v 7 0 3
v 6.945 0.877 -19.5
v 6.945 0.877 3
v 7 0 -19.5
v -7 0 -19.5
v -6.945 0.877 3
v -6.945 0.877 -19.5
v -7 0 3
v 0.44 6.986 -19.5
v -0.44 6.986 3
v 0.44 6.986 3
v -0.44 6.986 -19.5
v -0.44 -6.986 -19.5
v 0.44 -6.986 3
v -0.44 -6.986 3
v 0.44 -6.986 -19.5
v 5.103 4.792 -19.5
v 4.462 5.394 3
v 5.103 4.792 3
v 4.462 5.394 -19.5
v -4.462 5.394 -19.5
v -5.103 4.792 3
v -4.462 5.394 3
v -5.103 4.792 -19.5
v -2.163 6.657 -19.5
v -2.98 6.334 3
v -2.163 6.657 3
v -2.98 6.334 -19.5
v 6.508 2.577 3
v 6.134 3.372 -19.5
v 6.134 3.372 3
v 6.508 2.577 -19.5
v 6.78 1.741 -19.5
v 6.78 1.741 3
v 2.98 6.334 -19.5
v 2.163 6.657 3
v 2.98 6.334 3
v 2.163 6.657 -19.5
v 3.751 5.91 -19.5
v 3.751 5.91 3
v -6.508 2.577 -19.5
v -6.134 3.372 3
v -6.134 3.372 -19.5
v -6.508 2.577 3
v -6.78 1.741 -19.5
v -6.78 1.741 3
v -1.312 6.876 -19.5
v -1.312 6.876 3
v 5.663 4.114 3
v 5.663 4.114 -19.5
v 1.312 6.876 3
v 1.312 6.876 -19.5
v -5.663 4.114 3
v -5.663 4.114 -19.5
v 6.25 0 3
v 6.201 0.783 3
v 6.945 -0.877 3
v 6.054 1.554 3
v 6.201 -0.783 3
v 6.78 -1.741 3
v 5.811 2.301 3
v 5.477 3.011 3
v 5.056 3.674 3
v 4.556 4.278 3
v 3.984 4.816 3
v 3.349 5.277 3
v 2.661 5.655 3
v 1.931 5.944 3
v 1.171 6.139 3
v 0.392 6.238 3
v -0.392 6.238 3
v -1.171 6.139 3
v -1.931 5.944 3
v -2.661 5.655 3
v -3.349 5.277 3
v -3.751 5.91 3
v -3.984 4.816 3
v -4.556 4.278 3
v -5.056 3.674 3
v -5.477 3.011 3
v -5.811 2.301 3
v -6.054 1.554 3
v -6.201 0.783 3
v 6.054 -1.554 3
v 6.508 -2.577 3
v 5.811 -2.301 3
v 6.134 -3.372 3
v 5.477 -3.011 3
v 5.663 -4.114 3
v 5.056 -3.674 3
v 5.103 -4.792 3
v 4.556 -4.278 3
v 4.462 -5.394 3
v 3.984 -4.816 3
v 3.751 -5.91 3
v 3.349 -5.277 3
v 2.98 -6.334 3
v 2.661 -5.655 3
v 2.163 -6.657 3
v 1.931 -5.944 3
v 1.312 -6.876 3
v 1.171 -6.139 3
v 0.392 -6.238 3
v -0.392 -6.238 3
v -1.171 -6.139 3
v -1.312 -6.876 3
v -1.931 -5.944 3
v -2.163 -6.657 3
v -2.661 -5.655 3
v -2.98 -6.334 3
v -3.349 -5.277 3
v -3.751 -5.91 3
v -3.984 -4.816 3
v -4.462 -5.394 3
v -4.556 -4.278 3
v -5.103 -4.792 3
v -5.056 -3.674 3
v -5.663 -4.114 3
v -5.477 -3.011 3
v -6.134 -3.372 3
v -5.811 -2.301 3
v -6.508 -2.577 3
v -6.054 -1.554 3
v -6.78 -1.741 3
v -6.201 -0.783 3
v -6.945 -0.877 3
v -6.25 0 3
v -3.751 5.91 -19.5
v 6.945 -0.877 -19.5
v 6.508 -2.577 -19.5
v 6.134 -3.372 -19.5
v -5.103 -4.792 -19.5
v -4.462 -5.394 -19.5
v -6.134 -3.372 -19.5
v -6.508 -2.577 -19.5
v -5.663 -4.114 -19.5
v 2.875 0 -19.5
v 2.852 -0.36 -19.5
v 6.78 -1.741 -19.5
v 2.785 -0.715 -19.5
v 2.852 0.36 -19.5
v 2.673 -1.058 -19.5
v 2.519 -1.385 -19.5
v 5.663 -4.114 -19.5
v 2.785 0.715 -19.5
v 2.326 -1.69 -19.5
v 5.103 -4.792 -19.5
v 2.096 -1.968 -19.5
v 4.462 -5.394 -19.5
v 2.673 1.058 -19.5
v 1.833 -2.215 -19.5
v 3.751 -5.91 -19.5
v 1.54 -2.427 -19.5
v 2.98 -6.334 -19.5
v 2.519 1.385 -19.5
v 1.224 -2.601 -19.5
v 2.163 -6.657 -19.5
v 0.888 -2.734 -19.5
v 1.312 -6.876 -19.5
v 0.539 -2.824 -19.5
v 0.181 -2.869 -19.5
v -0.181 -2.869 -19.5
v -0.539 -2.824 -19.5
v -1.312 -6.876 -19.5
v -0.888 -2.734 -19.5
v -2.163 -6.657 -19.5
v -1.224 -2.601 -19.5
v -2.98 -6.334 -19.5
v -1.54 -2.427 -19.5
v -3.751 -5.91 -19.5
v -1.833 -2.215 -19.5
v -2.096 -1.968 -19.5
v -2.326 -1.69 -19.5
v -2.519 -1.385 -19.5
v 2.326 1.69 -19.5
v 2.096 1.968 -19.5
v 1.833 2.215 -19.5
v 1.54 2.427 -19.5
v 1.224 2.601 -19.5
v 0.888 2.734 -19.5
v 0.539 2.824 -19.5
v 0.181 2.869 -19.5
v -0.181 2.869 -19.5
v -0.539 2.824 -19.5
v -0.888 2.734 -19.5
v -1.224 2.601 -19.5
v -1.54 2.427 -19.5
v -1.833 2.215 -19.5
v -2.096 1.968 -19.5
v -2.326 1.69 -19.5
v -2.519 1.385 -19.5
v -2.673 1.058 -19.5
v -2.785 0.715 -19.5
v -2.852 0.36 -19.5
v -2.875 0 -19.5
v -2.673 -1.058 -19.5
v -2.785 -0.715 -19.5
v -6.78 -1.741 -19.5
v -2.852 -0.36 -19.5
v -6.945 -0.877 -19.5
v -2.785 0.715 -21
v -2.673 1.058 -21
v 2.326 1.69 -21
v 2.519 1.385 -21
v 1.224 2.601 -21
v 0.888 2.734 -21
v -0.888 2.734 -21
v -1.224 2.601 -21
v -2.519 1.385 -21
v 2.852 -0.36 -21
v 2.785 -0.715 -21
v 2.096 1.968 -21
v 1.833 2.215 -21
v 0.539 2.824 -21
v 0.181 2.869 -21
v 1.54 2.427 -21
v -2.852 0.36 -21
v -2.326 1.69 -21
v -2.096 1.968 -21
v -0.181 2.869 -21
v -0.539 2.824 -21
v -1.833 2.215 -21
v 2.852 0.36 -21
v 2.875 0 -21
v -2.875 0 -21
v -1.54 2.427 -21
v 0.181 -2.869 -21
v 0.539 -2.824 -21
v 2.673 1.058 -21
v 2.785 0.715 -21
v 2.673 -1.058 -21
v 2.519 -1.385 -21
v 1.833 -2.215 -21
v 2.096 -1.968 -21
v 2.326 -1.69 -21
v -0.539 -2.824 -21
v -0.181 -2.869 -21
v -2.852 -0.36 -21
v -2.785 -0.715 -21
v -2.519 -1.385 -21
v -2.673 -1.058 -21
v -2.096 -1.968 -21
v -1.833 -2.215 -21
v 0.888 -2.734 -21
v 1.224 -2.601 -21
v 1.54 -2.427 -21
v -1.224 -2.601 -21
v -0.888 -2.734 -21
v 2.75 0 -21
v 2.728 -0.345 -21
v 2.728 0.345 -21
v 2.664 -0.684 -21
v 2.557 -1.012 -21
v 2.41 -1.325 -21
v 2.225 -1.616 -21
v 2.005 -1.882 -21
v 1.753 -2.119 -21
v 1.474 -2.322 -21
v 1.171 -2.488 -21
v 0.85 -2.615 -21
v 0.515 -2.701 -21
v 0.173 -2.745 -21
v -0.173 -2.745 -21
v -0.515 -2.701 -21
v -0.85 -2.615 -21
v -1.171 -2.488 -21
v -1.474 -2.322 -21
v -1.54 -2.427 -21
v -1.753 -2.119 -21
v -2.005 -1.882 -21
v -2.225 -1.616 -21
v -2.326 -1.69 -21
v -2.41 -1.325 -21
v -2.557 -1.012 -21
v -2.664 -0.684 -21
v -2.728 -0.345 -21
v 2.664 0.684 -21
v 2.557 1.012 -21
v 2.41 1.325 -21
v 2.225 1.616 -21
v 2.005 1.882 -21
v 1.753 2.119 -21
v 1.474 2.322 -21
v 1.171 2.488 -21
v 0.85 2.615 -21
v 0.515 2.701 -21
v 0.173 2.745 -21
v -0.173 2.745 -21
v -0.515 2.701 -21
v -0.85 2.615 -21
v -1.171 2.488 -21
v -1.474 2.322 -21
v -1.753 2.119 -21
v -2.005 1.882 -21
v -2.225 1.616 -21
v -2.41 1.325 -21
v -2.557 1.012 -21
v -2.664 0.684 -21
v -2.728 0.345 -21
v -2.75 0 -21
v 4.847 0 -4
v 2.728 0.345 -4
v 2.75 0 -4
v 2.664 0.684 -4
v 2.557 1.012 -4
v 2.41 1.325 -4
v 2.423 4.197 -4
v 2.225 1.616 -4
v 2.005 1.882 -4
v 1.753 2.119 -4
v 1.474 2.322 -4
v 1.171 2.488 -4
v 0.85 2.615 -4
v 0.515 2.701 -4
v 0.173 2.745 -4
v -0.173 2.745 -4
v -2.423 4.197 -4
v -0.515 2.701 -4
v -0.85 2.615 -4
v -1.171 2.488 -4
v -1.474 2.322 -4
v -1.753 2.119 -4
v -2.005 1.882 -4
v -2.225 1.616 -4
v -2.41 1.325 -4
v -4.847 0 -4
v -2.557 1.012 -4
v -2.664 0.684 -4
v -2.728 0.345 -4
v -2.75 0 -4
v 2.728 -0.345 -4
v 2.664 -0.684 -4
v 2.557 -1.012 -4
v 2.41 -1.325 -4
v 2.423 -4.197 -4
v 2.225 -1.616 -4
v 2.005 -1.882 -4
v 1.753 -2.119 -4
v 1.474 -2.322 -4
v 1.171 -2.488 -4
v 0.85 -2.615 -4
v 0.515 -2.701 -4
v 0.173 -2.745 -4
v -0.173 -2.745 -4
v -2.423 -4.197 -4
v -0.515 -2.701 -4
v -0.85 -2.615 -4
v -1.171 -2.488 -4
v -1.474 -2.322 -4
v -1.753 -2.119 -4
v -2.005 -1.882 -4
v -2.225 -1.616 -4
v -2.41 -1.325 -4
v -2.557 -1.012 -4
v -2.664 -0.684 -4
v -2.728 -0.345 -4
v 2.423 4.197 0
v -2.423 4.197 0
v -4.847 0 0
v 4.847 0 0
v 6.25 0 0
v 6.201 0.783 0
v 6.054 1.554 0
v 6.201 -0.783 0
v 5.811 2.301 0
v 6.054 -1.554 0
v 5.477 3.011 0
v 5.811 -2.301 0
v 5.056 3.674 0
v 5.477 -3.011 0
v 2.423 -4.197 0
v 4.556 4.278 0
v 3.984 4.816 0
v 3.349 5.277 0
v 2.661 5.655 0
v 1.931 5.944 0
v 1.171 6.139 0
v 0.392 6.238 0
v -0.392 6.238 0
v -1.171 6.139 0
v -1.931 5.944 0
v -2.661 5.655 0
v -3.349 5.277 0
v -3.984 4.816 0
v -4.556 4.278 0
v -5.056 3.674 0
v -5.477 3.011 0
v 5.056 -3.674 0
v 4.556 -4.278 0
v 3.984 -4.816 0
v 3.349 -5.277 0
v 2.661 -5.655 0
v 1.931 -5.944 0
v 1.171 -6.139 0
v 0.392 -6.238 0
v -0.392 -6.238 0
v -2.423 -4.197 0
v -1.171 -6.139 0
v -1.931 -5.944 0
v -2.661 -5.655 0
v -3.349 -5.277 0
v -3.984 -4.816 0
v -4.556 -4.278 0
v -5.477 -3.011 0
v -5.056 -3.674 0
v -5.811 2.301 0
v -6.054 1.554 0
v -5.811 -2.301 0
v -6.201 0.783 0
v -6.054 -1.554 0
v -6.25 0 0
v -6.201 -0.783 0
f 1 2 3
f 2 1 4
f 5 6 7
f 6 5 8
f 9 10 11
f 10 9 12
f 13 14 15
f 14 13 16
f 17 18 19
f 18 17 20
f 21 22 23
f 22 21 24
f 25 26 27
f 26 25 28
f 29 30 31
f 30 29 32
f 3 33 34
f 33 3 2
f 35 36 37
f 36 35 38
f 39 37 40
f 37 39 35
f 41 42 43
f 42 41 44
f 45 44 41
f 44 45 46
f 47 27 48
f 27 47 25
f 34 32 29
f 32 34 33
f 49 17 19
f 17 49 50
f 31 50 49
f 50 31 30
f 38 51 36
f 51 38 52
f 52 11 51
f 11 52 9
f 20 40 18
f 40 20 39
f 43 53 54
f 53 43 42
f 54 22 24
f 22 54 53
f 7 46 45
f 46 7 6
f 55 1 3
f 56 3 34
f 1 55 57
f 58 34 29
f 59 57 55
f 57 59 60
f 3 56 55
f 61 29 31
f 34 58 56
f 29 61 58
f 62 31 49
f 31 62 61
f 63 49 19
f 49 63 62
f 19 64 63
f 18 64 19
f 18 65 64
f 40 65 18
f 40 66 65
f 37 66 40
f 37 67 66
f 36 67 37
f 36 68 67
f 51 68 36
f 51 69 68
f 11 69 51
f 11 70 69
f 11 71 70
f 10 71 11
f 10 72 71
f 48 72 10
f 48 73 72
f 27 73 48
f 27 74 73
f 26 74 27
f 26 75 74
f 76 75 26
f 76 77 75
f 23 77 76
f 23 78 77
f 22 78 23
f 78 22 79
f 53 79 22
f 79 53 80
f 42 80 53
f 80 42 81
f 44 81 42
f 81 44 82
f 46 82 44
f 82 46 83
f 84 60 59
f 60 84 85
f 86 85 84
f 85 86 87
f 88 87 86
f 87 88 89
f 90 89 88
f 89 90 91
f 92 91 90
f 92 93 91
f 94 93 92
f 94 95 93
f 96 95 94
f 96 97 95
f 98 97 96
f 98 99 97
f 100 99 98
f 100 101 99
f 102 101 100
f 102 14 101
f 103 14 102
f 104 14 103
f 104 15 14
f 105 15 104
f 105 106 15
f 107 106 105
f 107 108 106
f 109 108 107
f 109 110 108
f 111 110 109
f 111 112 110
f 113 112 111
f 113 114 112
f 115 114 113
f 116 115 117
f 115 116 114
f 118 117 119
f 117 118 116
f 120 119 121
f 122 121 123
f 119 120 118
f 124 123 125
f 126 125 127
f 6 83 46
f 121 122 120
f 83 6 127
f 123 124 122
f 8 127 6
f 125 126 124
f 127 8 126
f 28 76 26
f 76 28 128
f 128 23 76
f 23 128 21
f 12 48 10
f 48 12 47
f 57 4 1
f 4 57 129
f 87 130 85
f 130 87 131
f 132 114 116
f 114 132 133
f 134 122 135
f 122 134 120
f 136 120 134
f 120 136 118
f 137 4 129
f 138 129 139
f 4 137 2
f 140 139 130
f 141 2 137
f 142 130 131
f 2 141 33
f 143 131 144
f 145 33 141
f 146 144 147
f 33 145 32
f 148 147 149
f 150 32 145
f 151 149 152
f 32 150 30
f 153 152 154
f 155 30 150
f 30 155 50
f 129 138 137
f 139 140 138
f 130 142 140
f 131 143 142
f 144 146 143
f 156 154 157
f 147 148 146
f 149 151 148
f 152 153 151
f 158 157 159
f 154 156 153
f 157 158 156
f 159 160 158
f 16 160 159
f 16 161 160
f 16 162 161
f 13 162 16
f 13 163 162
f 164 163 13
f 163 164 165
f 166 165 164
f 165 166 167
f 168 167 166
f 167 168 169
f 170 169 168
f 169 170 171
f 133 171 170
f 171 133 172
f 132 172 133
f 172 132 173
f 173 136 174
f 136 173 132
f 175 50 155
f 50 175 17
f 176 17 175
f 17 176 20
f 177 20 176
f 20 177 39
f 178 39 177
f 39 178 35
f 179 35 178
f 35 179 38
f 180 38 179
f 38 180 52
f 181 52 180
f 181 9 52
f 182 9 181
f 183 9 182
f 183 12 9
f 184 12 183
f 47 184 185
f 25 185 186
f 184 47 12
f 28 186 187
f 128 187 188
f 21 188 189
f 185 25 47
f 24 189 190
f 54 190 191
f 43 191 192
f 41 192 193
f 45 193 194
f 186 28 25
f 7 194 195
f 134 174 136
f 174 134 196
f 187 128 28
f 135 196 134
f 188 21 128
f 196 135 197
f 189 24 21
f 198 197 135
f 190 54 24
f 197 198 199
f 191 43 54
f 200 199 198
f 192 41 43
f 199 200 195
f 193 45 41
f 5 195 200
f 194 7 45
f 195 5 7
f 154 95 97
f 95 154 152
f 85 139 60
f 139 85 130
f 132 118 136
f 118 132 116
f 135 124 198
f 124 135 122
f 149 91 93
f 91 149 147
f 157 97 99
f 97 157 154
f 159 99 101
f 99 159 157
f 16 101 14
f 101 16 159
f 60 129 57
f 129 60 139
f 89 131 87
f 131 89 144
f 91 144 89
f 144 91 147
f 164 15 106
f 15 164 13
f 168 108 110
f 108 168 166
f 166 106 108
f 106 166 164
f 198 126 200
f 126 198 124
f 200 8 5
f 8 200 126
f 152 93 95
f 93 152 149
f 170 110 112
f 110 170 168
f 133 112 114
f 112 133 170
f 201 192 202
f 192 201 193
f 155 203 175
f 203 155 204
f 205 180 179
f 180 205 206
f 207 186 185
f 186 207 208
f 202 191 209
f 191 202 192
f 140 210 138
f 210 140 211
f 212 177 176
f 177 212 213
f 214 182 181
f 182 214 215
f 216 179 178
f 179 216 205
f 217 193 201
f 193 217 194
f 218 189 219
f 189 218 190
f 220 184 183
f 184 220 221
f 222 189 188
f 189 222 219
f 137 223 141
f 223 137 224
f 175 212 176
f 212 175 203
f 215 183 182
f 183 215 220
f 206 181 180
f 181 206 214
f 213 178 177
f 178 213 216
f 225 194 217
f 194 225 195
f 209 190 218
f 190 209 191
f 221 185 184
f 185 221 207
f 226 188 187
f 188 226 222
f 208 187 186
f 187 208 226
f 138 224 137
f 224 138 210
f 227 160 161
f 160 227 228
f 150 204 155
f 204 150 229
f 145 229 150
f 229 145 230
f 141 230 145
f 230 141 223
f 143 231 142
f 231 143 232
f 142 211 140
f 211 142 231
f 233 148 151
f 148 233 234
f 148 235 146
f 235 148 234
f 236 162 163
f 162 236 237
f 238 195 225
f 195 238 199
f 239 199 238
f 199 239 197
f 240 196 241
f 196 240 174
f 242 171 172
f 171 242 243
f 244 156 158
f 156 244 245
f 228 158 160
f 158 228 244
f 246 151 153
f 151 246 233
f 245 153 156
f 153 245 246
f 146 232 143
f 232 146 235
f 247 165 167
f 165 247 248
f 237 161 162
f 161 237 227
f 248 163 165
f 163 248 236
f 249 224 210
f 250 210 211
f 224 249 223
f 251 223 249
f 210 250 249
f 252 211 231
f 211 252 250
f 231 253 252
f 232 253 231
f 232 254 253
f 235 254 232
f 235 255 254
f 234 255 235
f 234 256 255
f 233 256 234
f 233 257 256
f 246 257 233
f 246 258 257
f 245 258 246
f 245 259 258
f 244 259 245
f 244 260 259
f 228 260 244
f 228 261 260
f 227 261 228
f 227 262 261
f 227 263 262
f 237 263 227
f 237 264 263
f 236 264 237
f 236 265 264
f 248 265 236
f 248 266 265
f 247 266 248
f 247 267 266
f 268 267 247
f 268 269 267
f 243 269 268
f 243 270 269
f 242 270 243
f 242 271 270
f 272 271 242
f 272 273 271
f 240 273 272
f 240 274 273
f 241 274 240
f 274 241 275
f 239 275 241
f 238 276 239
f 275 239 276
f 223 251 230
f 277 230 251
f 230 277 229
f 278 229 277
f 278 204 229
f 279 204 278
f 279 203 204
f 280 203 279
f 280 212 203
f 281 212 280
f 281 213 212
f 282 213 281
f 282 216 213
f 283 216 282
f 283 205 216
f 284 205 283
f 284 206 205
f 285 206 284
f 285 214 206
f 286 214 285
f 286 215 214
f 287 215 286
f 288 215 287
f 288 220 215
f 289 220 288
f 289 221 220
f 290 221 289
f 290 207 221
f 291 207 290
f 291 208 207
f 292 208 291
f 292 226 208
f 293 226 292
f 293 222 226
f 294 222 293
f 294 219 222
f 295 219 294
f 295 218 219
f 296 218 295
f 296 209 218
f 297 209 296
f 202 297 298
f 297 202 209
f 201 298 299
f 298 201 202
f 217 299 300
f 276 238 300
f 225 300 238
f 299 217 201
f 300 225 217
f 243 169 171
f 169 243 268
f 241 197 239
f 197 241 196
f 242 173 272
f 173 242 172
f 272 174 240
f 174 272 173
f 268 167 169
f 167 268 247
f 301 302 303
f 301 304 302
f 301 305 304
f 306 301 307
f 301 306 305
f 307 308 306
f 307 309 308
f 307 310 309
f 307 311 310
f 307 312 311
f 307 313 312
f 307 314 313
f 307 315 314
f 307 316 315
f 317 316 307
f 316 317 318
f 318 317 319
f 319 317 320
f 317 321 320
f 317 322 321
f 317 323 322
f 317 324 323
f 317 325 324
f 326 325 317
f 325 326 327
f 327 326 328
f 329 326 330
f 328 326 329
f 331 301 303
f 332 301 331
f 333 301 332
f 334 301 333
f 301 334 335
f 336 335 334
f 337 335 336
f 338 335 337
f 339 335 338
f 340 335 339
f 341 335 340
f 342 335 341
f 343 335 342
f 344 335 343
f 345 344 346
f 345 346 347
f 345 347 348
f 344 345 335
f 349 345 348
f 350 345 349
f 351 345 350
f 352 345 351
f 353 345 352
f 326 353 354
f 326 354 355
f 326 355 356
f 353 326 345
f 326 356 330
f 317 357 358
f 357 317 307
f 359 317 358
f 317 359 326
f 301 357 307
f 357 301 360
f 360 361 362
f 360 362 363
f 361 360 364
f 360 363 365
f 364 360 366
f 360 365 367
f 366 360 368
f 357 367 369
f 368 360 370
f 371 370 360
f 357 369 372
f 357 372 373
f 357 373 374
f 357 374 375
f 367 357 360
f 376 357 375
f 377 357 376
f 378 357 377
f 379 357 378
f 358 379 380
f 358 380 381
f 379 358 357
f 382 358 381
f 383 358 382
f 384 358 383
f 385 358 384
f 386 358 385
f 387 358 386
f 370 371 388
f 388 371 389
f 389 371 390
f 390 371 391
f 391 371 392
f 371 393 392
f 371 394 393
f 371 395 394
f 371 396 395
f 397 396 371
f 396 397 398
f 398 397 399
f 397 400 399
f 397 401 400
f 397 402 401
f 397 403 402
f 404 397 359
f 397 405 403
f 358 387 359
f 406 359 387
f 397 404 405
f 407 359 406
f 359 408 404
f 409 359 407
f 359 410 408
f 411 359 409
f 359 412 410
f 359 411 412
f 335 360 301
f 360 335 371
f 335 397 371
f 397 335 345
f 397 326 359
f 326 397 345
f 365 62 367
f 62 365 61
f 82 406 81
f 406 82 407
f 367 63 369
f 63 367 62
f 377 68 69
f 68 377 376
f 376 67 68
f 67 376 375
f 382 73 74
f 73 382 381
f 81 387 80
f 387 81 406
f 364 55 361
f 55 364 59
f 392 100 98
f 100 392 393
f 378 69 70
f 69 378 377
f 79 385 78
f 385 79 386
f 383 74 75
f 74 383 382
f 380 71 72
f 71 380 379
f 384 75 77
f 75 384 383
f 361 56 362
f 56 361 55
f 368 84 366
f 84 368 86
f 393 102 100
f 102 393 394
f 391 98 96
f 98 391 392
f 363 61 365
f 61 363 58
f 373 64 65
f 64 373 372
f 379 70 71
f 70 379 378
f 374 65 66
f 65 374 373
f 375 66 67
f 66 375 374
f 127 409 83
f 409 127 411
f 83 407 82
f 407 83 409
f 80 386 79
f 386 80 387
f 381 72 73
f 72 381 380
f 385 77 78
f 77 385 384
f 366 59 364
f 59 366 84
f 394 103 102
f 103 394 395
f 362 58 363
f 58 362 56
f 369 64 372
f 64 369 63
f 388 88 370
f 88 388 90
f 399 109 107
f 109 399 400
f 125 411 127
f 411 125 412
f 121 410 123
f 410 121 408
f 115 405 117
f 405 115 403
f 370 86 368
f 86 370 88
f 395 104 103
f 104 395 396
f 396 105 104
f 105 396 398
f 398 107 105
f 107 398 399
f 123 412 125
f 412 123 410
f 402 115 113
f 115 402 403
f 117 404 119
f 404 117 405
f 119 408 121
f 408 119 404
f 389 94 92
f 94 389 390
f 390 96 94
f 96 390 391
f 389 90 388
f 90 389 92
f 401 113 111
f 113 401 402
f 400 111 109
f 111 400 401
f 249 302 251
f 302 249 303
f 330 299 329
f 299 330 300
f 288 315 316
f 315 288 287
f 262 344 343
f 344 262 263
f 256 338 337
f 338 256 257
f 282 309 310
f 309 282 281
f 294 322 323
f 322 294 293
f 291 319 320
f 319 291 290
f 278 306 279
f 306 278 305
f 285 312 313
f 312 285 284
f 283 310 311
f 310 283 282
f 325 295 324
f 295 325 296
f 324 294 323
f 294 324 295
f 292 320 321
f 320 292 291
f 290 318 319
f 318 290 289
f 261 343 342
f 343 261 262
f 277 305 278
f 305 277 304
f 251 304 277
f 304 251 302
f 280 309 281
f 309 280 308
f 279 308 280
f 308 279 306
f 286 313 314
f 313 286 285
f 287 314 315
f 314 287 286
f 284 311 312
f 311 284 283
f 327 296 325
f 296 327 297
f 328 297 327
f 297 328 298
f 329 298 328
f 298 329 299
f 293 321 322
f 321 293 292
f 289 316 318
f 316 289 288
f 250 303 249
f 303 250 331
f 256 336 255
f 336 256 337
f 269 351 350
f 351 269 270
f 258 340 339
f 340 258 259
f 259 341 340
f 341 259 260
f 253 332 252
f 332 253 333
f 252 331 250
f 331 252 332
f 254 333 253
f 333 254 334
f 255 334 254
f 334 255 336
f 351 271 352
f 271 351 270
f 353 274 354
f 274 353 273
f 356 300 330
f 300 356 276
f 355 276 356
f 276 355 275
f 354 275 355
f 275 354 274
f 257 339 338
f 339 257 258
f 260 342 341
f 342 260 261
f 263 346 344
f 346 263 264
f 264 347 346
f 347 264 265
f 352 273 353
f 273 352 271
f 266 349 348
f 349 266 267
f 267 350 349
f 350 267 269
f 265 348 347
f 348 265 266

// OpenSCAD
$fn = 50;


difference() {
	union() {
		translate(v = [0, 0, -19.5000000000]) {
			cylinder(h = 22.5000000000, r = 7.0000000000);
		}
		#translate(v = [0, 0, -21.0000000000]) {
			cylinder(h = 21, r = 2.8750000000);
		}
	}
	union() {
		translate(v = [0, 0, 0]) {
			rotate(a = [0, 0, 0]) {
				difference() {
					union() {
						translate(v = [0, 0, -4]) {
							linear_extrude(height = 4) {
								polygon(points = [[4.8468000000, 0.0000000000], [2.4234000000, 4.1974519271], [-2.4234000000, 4.1974519271], [-4.8468000000, 0.0000000000], [-2.4234000000, -4.1974519271], [2.4234000000, -4.1974519271]]);
							}
						}
					}
					union();
				}
			}
		}
		#cylinder(h = 3, r = 6.2500000000);
		#translate(v = [0, 0, -100.0000000000]) {
			cylinder(h = 200, r = 2.7500000000);
		}
	}
}
